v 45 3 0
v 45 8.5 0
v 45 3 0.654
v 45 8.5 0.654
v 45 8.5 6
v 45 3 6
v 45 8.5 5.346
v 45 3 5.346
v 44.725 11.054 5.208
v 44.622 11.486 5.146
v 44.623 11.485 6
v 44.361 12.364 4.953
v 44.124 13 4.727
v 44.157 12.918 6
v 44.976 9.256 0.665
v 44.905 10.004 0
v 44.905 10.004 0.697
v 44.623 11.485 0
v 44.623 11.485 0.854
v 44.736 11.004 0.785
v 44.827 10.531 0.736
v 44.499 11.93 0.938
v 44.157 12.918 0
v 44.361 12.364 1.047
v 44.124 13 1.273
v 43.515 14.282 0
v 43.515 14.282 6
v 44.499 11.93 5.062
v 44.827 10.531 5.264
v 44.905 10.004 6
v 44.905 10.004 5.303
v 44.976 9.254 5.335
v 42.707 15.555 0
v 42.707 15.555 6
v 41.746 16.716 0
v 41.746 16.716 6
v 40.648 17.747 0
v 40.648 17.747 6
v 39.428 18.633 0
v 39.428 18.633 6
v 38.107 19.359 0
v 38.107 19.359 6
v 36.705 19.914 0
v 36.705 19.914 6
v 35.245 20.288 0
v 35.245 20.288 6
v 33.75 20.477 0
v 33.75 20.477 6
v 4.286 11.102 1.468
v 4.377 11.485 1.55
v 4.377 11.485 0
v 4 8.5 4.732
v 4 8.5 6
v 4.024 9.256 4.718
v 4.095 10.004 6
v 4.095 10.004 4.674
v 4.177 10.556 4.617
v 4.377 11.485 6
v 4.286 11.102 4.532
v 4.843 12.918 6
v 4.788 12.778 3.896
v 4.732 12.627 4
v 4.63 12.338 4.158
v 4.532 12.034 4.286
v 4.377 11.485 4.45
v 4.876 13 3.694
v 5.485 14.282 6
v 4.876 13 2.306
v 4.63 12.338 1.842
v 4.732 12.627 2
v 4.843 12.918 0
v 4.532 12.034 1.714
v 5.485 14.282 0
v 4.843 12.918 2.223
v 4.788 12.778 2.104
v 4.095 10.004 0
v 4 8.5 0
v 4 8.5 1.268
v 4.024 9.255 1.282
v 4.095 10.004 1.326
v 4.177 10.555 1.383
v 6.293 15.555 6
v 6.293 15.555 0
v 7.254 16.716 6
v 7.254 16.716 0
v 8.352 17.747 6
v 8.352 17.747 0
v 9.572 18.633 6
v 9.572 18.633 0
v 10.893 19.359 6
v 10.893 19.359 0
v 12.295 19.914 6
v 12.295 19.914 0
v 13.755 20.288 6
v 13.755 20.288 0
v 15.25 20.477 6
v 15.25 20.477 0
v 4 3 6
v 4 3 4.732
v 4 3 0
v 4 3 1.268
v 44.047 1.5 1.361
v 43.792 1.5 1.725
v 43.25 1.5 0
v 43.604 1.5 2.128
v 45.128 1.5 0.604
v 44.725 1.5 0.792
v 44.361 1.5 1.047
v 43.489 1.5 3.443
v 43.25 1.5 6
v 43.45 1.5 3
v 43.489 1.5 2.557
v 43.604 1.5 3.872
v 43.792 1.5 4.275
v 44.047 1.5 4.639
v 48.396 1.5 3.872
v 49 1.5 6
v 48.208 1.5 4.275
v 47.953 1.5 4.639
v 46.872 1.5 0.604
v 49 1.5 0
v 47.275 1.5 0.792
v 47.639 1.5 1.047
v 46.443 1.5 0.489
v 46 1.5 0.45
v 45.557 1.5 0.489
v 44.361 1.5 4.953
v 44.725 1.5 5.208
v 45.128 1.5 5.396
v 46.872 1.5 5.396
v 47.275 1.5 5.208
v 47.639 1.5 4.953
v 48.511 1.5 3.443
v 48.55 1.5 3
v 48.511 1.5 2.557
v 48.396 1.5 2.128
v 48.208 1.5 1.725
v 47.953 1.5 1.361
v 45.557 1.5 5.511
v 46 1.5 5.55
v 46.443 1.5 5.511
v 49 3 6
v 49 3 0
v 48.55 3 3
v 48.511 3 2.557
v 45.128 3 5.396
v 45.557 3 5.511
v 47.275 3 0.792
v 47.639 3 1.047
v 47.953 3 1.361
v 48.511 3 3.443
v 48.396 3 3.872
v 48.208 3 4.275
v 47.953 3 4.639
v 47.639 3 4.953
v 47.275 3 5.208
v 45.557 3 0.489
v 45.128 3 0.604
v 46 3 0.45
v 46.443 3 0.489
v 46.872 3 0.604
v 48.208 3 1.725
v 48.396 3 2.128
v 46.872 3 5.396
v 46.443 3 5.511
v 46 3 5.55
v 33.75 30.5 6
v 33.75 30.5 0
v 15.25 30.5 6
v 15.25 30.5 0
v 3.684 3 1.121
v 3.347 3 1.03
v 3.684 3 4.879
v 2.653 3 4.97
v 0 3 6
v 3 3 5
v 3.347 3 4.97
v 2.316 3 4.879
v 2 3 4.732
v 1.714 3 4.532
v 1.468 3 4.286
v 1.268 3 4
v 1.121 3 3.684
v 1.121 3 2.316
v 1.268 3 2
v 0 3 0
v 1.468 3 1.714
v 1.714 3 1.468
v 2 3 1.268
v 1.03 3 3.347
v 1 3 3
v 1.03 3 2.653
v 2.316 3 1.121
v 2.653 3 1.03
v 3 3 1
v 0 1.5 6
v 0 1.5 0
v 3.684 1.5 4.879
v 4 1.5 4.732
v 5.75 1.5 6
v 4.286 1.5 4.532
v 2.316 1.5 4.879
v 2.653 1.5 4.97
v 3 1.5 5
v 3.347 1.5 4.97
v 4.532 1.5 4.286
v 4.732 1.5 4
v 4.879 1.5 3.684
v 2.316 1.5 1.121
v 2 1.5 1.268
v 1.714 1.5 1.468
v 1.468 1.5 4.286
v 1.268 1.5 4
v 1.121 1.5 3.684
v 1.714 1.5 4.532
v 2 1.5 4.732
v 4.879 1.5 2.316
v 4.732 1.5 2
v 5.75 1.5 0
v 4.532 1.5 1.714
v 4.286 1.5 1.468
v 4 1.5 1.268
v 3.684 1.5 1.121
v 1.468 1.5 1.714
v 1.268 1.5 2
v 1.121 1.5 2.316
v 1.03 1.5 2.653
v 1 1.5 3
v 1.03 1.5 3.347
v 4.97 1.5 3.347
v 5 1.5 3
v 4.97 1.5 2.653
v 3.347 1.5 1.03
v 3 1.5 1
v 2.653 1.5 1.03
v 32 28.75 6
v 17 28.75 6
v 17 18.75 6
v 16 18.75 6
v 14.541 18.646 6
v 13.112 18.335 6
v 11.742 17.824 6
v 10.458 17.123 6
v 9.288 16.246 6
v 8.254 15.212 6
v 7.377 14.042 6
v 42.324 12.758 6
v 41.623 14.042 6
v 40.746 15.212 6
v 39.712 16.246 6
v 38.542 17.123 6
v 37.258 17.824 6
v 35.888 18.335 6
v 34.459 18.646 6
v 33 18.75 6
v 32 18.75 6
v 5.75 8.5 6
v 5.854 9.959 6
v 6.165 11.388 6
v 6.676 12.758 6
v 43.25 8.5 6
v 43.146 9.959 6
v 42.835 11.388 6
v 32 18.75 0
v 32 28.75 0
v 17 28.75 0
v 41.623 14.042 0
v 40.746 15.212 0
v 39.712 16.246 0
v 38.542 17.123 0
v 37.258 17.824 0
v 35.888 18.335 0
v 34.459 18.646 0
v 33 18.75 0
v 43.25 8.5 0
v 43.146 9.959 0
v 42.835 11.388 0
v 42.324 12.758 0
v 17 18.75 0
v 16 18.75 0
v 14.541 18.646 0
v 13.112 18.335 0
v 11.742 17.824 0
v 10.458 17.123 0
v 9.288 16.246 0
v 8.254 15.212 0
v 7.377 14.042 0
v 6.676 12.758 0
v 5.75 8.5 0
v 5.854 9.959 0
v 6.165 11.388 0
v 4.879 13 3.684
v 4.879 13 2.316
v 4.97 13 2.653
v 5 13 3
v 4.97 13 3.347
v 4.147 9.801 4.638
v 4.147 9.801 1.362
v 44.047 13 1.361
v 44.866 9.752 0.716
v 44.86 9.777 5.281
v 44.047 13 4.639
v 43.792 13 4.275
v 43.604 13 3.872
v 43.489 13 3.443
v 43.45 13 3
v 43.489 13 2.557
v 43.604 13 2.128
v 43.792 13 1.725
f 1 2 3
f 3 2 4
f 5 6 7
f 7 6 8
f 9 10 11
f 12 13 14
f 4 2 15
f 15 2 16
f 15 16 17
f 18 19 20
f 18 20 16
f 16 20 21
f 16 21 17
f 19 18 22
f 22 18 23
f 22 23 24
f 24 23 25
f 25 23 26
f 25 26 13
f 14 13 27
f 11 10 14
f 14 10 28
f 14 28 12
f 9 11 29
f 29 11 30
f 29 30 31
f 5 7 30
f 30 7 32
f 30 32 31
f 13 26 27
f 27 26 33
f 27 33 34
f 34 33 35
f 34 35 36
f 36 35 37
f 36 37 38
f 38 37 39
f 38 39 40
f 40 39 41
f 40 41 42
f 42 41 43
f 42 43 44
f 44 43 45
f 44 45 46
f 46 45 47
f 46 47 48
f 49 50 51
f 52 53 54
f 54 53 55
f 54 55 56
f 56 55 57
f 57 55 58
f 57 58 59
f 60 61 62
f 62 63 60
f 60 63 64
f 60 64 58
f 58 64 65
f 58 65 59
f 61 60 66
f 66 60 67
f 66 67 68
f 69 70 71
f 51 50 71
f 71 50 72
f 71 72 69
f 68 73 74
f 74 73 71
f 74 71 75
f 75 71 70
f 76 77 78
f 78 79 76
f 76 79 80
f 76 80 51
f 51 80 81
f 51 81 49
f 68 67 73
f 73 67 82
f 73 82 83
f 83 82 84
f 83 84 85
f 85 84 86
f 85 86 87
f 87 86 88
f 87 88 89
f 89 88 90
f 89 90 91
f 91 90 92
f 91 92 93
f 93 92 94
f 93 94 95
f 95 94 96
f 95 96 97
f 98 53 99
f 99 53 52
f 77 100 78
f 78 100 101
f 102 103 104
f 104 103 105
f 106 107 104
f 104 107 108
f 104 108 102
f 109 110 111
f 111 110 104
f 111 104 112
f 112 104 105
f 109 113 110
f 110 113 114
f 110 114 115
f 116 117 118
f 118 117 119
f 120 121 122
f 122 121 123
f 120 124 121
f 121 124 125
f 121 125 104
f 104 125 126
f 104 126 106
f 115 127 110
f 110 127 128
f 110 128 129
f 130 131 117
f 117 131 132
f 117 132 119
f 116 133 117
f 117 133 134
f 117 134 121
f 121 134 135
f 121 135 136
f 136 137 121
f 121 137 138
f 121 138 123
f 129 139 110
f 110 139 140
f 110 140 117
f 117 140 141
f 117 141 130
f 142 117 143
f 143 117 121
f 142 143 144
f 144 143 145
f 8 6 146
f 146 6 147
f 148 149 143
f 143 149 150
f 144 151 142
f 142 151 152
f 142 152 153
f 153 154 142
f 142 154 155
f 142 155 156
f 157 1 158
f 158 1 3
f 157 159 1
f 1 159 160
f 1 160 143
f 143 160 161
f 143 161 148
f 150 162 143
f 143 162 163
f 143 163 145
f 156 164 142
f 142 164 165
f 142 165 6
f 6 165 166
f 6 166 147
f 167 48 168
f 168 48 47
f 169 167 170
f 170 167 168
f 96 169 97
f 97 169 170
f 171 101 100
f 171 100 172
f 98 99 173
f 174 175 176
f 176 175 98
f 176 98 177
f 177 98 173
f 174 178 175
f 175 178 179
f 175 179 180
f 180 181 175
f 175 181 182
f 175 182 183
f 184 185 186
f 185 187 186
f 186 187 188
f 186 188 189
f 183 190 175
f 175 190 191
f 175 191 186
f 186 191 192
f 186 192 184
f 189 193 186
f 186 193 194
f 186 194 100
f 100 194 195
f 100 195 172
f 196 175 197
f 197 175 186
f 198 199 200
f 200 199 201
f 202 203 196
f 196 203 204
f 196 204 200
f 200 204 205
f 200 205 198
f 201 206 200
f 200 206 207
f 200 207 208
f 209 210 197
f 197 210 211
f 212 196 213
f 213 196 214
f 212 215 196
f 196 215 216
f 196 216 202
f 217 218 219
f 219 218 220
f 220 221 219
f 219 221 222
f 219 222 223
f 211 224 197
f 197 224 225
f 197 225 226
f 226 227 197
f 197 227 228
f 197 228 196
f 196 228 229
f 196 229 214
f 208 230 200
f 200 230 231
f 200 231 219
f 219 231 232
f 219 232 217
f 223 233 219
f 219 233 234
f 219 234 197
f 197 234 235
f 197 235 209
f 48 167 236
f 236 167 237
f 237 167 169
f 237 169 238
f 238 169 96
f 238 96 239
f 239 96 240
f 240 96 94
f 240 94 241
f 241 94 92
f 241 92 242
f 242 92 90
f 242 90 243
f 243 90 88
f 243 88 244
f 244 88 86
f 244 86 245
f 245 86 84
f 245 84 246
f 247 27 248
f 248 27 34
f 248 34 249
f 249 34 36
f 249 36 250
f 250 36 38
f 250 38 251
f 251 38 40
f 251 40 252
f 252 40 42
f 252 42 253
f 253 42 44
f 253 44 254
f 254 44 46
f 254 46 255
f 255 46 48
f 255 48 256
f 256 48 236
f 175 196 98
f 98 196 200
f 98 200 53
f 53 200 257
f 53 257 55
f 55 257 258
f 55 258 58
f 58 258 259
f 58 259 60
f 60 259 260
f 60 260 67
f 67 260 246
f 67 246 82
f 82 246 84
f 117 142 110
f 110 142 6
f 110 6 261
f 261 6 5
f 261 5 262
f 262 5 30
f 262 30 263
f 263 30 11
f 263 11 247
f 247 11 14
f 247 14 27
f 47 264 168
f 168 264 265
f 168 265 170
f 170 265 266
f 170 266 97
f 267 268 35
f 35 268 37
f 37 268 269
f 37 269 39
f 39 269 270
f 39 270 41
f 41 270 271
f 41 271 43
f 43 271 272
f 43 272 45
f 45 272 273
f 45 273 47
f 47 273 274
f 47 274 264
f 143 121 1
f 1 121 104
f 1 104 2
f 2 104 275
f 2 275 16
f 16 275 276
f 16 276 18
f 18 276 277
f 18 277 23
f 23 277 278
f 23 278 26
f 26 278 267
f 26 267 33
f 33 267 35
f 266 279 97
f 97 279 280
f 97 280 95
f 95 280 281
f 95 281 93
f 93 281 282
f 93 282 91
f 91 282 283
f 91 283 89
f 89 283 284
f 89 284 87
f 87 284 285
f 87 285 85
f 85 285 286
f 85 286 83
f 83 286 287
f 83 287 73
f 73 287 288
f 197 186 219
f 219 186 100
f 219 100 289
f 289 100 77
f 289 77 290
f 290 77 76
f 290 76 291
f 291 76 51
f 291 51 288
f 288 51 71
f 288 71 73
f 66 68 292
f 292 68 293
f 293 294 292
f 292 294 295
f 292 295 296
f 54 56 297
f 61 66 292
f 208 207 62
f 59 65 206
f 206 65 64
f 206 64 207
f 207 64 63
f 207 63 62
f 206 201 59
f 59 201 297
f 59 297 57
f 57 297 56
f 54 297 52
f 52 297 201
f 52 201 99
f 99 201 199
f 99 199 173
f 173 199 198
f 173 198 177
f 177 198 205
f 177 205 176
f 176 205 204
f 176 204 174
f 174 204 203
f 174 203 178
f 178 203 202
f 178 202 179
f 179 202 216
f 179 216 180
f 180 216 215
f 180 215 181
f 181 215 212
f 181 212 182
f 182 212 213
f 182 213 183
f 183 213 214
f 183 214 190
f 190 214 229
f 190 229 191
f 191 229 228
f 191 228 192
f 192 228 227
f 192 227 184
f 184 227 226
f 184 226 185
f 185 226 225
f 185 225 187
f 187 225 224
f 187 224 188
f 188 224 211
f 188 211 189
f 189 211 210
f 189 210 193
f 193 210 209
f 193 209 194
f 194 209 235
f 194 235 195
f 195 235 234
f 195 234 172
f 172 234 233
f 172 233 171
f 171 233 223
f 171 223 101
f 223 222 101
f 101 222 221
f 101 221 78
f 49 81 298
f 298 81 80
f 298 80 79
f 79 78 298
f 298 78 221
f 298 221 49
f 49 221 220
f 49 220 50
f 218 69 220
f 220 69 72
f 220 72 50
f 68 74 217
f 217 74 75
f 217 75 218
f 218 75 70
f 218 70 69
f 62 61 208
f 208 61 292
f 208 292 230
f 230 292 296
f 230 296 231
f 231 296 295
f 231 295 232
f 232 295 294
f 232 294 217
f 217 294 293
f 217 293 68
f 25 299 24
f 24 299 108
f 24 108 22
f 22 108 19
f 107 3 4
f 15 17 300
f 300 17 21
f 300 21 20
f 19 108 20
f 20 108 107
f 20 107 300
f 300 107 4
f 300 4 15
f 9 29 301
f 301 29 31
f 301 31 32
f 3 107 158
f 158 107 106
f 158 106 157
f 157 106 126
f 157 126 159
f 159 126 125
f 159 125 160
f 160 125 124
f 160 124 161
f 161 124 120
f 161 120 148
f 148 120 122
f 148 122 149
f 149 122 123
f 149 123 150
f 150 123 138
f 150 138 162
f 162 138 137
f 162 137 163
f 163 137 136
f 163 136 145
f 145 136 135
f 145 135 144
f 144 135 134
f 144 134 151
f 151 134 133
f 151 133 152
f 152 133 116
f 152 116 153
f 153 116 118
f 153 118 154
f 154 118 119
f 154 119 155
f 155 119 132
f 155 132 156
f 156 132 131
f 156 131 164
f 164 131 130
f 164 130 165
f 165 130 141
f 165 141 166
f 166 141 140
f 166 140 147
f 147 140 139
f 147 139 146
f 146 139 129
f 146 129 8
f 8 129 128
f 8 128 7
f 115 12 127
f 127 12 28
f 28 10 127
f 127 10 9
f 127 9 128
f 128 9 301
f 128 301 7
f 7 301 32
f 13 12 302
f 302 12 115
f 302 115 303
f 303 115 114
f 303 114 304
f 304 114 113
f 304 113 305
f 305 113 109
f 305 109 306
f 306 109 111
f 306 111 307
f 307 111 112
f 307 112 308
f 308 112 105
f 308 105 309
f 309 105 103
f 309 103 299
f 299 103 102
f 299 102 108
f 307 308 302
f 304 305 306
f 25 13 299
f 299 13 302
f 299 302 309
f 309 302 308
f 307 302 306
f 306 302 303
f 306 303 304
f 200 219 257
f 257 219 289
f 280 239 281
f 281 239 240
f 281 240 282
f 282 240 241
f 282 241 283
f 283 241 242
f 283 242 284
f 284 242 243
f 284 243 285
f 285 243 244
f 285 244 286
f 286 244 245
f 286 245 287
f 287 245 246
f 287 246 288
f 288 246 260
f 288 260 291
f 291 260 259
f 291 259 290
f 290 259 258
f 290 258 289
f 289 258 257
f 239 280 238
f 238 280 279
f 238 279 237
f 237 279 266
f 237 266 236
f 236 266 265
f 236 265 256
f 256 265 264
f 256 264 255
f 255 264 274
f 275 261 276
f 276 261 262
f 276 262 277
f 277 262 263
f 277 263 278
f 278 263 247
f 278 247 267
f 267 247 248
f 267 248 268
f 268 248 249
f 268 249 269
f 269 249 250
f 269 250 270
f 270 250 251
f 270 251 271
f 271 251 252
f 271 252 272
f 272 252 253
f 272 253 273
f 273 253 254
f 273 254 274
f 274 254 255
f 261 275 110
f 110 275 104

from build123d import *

# Parameters (mm, degrees)
EXTRUDE_1_DEPTH          = 6
CUT_EXTRUDE_1_DEPTH      = 10
CUT_EXTRUDE_1_DEPTH_BACK = 10
SKETCH_2_R               = 2
CUT_EXTRUDE_START        = -10
CUT_EXTRUDE_2_DEPTH      = 10


with BuildPart() as part:
    # 스케치1 → 보스-돌출1 (new body)
    with BuildSketch(Plane.XY):
        with BuildLine():
            Line((31.75, 18.5), (33, 18.5))
            ThreePointArc((33, 18.5), (40.071067812, 15.571067812), (43, 8.5))
            Line((43, 8.5), (43, 1.5))
            Line((43, 1.5), (49, 1.5))
            Line((49, 1.5), (49, 3))
            Line((49, 3), (45, 3))
            Line((45, 3), (45, 8.5))
            ThreePointArc((45, 8.5), (41.746427842, 16.715838363), (33.75, 20.476539567))
            Line((33.75, 20.476539567), (33.75, 30.5))
            Line((33.75, 30.5), (15.25, 30.5))
            Line((15.25, 30.5), (15.25, 20.476539567))
            ThreePointArc((15.25, 20.476539567), (7.253572158, 16.715838363), (4, 8.5))
            Line((4, 8.5), (4, 3))
            Line((4, 3), (0, 3))
            Line((0, 3), (0, 1.5))
            Line((0, 1.5), (6, 1.5))
            Line((6, 1.5), (6, 8.5))
            ThreePointArc((6, 8.5), (8.928932188, 15.571067812), (16, 18.5))
            Line((16, 18.5), (17.25, 18.5))
            Line((17.25, 18.5), (17.25, 28.5))
            Line((17.25, 28.5), (31.75, 28.5))
            Line((31.75, 28.5), (31.75, 18.5))
        make_face()
    extrude(amount=EXTRUDE_1_DEPTH)

    # 스케치2 → 컷-돌출1 (cut, two sides: drawn at the far end of the back side and taken through both)
    with BuildSketch(Plane(origin=(0, 3, 0), x_dir=(1, 0, 0), z_dir=(0, 1, 0)).offset(-CUT_EXTRUDE_1_DEPTH_BACK)):
        with BuildLine():
            ThreePointArc((45, -5.345740821), (47.405791592, -5.127498531), (48.55, -3))
            ThreePointArc((48.55, -3), (47.405791592, -0.872501469), (45, -0.654259179))
            Line((45, -0.654259179), (45, -5.345740821))
        make_face()
        with BuildLine():
            Line((45, -5.345740821), (45, -0.654259179))
            ThreePointArc((45, -0.654259179), (43.45, -3), (45, -5.345740821))
        make_face()
        with Locations(Location((3, -3, 0), (0, 0, 60))):
            Circle(SKETCH_2_R)
    extrude(amount=CUT_EXTRUDE_1_DEPTH + CUT_EXTRUDE_1_DEPTH_BACK, mode=Mode.SUBTRACT)

    # 스케치3 → 컷-돌출2 (cut)
    with BuildSketch(Plane.XY.offset(6).offset(CUT_EXTRUDE_START)):
        with BuildLine():
            Line((5.75, 1.5), (5.75, 8.5))
            ThreePointArc((5.75, 8.5), (8.752155493, 15.747844507), (16, 18.75))
            Line((16, 18.75), (17, 18.75))
            Line((17, 18.75), (17, 28.75))
            Line((17, 28.75), (32, 28.75))
            Line((32, 28.75), (32, 18.75))
            Line((32, 18.75), (33, 18.75))
            ThreePointArc((33, 18.75), (40.247844507, 15.747844507), (43.25, 8.5))
            Line((43.25, 8.5), (43.25, 1.5))
            Line((43.25, 1.5), (43, 1.5))
            Line((43, 1.5), (43, 8.5))
            ThreePointArc((43, 8.5), (40.071067812, 15.571067812), (33, 18.5))
            Line((33, 18.5), (31.75, 18.5))
            Line((31.75, 18.5), (31.75, 28.5))
            Line((31.75, 28.5), (17.25, 28.5))
            Line((17.25, 28.5), (17.25, 18.5))
            Line((17.25, 18.5), (16, 18.5))
            ThreePointArc((16, 18.5), (8.928932188, 15.571067812), (6, 8.5))
            Line((6, 8.5), (6, 1.5))
            Line((6, 1.5), (5.75, 1.5))
        make_face()
    extrude(amount=CUT_EXTRUDE_2_DEPTH, mode=Mode.SUBTRACT)


solid = part.part
